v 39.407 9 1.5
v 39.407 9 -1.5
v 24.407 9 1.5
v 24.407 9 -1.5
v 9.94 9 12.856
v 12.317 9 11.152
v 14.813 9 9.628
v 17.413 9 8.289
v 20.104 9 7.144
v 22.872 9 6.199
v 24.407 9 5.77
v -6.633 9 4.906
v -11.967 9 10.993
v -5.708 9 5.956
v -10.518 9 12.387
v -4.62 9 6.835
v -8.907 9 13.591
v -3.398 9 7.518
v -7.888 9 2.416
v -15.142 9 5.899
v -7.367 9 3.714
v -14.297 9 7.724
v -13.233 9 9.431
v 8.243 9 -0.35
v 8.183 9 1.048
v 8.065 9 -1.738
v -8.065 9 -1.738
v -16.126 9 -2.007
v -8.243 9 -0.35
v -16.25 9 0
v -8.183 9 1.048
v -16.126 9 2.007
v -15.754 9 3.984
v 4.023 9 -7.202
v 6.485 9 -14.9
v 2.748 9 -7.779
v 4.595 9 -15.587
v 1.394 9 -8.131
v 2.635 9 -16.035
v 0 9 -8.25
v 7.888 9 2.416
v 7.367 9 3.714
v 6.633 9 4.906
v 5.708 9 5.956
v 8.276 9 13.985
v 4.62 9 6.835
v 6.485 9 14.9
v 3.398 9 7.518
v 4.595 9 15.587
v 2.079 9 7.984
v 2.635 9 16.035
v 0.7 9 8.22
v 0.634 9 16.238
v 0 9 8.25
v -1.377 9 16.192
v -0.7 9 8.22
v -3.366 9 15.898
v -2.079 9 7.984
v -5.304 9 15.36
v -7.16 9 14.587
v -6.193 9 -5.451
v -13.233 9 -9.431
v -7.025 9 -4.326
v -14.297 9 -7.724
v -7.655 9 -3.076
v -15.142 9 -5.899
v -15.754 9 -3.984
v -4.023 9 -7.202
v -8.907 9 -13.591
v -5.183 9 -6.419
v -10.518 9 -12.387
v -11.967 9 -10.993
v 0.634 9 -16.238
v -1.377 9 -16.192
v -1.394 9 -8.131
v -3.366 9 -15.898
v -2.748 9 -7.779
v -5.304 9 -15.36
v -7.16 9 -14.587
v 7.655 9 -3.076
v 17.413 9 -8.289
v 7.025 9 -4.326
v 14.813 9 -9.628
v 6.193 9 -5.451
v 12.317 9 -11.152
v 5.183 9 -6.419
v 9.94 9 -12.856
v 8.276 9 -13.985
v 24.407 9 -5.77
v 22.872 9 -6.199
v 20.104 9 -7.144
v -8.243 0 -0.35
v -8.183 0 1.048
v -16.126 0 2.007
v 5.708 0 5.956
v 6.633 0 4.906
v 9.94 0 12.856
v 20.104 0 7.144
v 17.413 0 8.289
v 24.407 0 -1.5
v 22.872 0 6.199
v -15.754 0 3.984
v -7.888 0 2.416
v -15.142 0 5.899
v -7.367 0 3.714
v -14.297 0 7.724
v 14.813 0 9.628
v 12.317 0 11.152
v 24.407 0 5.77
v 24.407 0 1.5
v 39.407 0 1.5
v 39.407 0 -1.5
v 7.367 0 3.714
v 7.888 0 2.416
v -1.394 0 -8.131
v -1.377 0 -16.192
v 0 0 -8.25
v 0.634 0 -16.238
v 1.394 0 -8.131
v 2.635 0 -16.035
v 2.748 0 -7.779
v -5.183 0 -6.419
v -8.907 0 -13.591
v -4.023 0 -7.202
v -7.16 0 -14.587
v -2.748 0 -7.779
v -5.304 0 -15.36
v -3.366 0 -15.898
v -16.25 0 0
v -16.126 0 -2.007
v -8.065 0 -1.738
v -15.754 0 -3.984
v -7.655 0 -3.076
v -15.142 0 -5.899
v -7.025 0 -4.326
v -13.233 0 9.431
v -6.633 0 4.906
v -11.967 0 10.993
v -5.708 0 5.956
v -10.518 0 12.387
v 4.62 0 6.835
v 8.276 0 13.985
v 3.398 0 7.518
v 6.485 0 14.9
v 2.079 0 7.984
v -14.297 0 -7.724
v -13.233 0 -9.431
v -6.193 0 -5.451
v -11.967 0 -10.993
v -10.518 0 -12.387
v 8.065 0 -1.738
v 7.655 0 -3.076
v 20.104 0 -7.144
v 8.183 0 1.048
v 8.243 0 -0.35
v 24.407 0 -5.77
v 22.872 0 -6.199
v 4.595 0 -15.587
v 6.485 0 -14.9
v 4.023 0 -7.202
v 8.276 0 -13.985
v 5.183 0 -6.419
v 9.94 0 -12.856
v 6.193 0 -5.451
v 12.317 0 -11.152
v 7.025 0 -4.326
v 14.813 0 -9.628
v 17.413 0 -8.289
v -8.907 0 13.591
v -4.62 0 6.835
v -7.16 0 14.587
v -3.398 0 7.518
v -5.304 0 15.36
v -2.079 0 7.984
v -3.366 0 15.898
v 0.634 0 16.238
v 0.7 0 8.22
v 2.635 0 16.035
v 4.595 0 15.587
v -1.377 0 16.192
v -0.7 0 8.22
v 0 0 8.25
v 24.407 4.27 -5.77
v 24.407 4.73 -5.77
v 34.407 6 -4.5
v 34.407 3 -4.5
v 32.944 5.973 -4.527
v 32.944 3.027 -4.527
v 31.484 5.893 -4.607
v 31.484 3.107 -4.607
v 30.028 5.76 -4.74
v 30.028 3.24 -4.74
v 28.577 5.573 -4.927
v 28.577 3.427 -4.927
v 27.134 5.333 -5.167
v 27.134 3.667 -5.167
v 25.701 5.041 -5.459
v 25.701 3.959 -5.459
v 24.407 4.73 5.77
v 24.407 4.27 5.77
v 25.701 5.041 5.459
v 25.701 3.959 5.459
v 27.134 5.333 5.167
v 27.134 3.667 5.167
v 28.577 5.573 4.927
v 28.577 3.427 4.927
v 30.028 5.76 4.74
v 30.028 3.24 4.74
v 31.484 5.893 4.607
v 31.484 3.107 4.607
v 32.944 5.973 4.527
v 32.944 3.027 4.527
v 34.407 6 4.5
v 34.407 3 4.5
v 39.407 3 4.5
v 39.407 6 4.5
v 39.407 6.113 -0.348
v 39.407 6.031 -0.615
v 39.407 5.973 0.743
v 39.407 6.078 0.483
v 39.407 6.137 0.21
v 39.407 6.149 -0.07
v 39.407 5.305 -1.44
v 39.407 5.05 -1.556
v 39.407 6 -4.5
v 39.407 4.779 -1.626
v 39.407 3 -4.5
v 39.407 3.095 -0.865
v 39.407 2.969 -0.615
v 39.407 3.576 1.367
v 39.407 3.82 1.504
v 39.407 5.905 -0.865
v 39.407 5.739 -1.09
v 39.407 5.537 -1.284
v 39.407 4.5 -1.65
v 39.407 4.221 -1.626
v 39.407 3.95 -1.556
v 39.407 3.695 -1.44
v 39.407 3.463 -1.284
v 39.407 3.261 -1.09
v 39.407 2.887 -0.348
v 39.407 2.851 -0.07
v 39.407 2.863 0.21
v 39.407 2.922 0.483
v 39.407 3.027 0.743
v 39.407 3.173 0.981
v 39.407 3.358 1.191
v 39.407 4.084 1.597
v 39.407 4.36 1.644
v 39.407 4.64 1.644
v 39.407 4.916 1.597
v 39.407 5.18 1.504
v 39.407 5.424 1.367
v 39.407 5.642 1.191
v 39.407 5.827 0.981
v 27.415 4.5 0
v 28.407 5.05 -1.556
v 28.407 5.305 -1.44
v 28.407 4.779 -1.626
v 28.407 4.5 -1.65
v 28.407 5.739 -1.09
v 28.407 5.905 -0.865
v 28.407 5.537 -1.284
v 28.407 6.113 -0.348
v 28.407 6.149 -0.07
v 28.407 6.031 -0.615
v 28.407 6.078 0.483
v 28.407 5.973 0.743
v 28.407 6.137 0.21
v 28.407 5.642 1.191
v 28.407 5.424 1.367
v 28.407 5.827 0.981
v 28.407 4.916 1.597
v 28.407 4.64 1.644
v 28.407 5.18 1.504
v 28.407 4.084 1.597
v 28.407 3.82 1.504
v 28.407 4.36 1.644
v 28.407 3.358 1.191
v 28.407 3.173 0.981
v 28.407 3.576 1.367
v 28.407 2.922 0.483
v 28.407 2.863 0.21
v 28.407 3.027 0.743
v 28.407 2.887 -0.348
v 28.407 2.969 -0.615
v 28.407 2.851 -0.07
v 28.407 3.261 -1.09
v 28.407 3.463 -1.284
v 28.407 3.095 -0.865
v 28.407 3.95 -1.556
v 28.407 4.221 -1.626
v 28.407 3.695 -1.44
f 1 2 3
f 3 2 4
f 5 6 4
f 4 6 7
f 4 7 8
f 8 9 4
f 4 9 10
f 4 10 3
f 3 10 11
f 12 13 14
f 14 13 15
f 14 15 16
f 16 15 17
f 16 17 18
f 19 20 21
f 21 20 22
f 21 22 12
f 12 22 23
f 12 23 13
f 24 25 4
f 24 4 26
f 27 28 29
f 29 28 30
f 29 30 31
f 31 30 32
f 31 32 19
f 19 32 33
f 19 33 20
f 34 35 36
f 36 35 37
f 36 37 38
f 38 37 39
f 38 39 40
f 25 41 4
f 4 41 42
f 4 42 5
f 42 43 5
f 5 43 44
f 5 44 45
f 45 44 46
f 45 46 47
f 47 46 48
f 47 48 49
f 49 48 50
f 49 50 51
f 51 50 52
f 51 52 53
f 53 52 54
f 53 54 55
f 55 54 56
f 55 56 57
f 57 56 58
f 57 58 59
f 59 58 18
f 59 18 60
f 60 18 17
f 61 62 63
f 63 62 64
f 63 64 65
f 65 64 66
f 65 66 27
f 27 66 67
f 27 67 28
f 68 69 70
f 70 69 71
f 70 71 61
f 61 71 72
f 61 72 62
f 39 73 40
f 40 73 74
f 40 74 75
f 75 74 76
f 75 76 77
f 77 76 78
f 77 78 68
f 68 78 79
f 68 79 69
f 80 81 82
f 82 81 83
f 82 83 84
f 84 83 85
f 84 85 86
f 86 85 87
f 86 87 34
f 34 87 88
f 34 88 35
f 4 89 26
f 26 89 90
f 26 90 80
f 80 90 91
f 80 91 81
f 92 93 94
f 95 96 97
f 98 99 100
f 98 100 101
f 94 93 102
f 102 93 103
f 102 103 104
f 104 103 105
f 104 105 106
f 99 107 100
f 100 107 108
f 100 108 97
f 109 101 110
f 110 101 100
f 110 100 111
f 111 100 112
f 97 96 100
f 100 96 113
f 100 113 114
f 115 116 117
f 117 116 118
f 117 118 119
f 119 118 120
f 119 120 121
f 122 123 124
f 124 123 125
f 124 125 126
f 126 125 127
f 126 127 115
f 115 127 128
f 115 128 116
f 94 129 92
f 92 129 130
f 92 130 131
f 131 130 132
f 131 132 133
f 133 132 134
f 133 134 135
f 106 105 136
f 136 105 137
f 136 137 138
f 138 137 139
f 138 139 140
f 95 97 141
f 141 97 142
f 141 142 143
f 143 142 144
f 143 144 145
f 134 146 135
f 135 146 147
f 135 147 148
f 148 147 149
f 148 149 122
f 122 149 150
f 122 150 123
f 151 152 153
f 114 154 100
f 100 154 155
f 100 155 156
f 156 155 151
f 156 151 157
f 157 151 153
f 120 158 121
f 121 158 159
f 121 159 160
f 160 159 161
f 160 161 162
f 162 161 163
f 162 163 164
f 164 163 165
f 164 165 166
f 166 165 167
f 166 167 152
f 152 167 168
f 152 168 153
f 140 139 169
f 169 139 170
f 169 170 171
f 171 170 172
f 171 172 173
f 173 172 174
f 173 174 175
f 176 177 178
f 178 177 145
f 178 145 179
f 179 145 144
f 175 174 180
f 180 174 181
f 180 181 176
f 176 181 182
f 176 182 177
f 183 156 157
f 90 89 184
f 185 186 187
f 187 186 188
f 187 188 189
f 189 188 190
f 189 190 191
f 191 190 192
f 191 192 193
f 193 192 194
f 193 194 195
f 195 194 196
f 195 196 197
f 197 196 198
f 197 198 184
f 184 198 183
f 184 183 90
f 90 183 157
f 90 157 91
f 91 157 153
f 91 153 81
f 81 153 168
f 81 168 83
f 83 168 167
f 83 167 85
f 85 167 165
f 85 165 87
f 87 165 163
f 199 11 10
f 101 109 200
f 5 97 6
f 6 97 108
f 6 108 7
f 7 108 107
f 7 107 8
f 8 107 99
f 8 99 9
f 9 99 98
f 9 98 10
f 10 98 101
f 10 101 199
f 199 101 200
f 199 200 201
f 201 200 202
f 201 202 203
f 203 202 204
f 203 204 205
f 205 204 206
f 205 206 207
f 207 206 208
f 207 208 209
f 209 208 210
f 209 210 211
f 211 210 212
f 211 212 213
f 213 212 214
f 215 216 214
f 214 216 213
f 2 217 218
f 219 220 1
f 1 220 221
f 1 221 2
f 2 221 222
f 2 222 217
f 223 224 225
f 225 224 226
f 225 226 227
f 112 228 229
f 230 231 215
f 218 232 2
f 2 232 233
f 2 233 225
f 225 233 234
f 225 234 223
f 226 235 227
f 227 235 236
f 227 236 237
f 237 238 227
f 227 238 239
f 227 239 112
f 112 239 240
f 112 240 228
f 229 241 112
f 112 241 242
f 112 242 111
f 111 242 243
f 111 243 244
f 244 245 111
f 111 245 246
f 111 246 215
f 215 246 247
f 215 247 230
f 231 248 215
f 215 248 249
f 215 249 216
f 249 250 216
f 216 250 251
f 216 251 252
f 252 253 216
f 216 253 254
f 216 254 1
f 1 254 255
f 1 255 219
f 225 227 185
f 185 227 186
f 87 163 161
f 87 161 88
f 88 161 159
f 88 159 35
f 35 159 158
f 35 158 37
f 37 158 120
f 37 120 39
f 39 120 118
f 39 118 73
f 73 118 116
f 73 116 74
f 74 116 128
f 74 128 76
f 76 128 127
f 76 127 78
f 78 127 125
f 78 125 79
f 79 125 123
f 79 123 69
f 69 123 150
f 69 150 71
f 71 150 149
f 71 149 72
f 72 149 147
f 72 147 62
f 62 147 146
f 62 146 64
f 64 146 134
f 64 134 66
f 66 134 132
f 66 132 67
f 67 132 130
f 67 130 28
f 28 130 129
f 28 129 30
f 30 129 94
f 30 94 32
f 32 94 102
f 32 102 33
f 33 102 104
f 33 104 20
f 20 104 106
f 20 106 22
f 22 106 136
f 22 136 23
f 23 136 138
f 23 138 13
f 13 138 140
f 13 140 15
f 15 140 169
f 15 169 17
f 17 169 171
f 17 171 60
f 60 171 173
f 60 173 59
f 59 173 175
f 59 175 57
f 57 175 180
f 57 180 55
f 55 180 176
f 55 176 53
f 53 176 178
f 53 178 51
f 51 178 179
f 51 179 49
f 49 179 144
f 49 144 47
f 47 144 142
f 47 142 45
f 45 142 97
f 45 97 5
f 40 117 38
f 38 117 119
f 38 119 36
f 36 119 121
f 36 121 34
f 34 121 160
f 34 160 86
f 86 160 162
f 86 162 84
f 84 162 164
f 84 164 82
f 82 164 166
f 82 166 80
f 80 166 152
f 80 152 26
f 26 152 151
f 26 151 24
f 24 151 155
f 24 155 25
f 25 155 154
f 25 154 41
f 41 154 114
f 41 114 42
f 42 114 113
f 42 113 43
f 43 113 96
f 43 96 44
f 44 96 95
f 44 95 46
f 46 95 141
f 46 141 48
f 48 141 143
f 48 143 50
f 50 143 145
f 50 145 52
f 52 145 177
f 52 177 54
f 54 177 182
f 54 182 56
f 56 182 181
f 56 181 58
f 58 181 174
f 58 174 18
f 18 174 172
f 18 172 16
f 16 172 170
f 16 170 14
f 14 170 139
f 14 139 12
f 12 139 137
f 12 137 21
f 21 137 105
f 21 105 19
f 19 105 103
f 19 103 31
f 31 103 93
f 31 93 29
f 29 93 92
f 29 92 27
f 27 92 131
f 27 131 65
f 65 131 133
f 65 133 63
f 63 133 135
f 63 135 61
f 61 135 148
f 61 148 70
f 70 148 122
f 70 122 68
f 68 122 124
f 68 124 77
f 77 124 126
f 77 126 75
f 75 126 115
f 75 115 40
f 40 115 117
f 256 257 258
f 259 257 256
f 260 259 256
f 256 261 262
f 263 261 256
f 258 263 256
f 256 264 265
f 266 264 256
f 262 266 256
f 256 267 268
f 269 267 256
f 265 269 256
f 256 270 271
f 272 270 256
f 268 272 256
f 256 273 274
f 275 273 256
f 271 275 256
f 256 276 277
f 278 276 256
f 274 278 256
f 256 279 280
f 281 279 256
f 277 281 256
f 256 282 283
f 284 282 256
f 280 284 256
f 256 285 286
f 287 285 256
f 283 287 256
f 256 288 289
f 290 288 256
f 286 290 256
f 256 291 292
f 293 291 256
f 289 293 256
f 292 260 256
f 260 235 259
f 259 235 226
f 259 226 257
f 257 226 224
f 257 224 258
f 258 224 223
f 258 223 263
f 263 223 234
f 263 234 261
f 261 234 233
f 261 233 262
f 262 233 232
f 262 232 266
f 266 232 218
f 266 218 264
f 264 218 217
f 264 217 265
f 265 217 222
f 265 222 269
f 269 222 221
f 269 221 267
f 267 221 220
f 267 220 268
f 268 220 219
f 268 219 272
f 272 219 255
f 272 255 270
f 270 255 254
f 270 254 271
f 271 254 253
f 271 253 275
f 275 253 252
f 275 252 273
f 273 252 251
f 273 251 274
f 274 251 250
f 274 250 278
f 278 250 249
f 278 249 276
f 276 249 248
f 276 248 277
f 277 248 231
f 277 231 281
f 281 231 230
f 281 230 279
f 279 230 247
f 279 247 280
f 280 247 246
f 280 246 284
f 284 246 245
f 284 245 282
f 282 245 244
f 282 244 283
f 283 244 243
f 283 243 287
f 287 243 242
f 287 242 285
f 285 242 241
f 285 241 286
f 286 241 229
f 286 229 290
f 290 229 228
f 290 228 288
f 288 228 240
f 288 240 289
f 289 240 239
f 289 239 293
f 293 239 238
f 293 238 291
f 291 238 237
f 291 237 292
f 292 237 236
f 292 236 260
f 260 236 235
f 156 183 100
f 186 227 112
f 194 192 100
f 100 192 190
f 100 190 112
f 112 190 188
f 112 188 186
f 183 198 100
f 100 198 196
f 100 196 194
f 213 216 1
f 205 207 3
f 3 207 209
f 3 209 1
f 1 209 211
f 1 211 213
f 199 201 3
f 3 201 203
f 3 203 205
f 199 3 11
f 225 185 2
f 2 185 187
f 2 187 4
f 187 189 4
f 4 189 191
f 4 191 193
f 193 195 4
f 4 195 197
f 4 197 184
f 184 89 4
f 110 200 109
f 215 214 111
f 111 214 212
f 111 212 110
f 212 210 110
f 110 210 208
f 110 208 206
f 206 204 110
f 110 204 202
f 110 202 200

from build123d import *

# Parameters (mm, degrees)
SKETCH1_R                 = 8.25
BOSS_EXTRUDE1_DEPTH       = 9
M4X0_7_TAPPED_HOLE1_D     = 3.3
M4X0_7_TAPPED_HOLE1_DEPTH = 11
M4X0_7_TAPPED_HOLE1_TIP   = 0.991420021
CUT_EXTRUDE4_DEPTH        = 15


with BuildPart() as part:
    # Sketch1 → Boss-Extrude1 (new body)
    with BuildSketch(Plane(origin=(0, 0, 0), x_dir=(1, 0, 0), z_dir=(0, 1, 0))):
        with BuildLine():
            Line((39.406576406, 4.5), (39.406576406, -4.5))
            Line((39.406576406, -4.5), (34.406576406, -4.5))
            ThreePointArc((34.406576406, -4.5), (21.47943012, -6.646481156), (9.939677628, -12.855555556))
            ThreePointArc((9.939677628, -12.855555556), (-16.25, 0), (9.939677628, 12.855555556))
            ThreePointArc((9.939677628, 12.855555556), (21.47943012, 6.646481156), (34.406576406, 4.5))
            Line((34.406576406, 4.5), (39.406576406, 4.5))
        make_face()
        with Locations(Location((0, 0, 0), (0, 0, 270))):
            Circle(SKETCH1_R, mode=Mode.SUBTRACT)
    extrude(amount=BOSS_EXTRUDE1_DEPTH)

    # M4x0.7 Tapped Hole1
    with Locations(Plane(origin=(39.406576406, 0, 0), x_dir=(0, 0, -1), z_dir=(1, 0, 0))):
        with Locations((0, 4.5)):
            Hole(M4X0_7_TAPPED_HOLE1_D / 2, depth=M4X0_7_TAPPED_HOLE1_DEPTH)
            with Locations((0, 0, -(M4X0_7_TAPPED_HOLE1_DEPTH + M4X0_7_TAPPED_HOLE1_TIP / 2))):  # 118° drill point
                Cone(0, M4X0_7_TAPPED_HOLE1_D / 2, M4X0_7_TAPPED_HOLE1_TIP, mode=Mode.SUBTRACT)

    # Sketch11 → Cut-Extrude4 (cut)
    with BuildSketch(Plane(origin=(39.406576406, 0, 0), x_dir=(0, 0, -1), z_dir=(1, 0, 0))):
        Polygon((-1.5, 9), (0, 10.5), (-6, 10.5), (-6, 4.5), (-4.5, 6), (-4.5, 9), align=None)
        Polygon((-4.5, 6), (-1.5, 9), (-4.5, 9), align=None)
        Polygon((6, 10.5), (0, 10.5), (1.5, 9), (4.5, 9), (4.5, 6), (6, 4.5), align=None)
        Polygon((4.5, 9), (1.5, 9), (4.5, 6), align=None)
        Polygon((4.5, 0), (4.5, 3), (1.5, 0), align=None)
        Polygon((6, -1.5), (6, 4.5), (4.5, 3), (4.5, 0), (1.5, 0), (0, -1.5), align=None)
        Polygon((-1.5, 0), (-4.5, 3), (-4.5, 0), align=None)
        Polygon((-4.5, 3), (-6, 4.5), (-6, -1.5), (0, -1.5), (-1.5, 0), (-4.5, 0), align=None)
    extrude(amount=-CUT_EXTRUDE4_DEPTH, mode=Mode.SUBTRACT)


solid = part.part
